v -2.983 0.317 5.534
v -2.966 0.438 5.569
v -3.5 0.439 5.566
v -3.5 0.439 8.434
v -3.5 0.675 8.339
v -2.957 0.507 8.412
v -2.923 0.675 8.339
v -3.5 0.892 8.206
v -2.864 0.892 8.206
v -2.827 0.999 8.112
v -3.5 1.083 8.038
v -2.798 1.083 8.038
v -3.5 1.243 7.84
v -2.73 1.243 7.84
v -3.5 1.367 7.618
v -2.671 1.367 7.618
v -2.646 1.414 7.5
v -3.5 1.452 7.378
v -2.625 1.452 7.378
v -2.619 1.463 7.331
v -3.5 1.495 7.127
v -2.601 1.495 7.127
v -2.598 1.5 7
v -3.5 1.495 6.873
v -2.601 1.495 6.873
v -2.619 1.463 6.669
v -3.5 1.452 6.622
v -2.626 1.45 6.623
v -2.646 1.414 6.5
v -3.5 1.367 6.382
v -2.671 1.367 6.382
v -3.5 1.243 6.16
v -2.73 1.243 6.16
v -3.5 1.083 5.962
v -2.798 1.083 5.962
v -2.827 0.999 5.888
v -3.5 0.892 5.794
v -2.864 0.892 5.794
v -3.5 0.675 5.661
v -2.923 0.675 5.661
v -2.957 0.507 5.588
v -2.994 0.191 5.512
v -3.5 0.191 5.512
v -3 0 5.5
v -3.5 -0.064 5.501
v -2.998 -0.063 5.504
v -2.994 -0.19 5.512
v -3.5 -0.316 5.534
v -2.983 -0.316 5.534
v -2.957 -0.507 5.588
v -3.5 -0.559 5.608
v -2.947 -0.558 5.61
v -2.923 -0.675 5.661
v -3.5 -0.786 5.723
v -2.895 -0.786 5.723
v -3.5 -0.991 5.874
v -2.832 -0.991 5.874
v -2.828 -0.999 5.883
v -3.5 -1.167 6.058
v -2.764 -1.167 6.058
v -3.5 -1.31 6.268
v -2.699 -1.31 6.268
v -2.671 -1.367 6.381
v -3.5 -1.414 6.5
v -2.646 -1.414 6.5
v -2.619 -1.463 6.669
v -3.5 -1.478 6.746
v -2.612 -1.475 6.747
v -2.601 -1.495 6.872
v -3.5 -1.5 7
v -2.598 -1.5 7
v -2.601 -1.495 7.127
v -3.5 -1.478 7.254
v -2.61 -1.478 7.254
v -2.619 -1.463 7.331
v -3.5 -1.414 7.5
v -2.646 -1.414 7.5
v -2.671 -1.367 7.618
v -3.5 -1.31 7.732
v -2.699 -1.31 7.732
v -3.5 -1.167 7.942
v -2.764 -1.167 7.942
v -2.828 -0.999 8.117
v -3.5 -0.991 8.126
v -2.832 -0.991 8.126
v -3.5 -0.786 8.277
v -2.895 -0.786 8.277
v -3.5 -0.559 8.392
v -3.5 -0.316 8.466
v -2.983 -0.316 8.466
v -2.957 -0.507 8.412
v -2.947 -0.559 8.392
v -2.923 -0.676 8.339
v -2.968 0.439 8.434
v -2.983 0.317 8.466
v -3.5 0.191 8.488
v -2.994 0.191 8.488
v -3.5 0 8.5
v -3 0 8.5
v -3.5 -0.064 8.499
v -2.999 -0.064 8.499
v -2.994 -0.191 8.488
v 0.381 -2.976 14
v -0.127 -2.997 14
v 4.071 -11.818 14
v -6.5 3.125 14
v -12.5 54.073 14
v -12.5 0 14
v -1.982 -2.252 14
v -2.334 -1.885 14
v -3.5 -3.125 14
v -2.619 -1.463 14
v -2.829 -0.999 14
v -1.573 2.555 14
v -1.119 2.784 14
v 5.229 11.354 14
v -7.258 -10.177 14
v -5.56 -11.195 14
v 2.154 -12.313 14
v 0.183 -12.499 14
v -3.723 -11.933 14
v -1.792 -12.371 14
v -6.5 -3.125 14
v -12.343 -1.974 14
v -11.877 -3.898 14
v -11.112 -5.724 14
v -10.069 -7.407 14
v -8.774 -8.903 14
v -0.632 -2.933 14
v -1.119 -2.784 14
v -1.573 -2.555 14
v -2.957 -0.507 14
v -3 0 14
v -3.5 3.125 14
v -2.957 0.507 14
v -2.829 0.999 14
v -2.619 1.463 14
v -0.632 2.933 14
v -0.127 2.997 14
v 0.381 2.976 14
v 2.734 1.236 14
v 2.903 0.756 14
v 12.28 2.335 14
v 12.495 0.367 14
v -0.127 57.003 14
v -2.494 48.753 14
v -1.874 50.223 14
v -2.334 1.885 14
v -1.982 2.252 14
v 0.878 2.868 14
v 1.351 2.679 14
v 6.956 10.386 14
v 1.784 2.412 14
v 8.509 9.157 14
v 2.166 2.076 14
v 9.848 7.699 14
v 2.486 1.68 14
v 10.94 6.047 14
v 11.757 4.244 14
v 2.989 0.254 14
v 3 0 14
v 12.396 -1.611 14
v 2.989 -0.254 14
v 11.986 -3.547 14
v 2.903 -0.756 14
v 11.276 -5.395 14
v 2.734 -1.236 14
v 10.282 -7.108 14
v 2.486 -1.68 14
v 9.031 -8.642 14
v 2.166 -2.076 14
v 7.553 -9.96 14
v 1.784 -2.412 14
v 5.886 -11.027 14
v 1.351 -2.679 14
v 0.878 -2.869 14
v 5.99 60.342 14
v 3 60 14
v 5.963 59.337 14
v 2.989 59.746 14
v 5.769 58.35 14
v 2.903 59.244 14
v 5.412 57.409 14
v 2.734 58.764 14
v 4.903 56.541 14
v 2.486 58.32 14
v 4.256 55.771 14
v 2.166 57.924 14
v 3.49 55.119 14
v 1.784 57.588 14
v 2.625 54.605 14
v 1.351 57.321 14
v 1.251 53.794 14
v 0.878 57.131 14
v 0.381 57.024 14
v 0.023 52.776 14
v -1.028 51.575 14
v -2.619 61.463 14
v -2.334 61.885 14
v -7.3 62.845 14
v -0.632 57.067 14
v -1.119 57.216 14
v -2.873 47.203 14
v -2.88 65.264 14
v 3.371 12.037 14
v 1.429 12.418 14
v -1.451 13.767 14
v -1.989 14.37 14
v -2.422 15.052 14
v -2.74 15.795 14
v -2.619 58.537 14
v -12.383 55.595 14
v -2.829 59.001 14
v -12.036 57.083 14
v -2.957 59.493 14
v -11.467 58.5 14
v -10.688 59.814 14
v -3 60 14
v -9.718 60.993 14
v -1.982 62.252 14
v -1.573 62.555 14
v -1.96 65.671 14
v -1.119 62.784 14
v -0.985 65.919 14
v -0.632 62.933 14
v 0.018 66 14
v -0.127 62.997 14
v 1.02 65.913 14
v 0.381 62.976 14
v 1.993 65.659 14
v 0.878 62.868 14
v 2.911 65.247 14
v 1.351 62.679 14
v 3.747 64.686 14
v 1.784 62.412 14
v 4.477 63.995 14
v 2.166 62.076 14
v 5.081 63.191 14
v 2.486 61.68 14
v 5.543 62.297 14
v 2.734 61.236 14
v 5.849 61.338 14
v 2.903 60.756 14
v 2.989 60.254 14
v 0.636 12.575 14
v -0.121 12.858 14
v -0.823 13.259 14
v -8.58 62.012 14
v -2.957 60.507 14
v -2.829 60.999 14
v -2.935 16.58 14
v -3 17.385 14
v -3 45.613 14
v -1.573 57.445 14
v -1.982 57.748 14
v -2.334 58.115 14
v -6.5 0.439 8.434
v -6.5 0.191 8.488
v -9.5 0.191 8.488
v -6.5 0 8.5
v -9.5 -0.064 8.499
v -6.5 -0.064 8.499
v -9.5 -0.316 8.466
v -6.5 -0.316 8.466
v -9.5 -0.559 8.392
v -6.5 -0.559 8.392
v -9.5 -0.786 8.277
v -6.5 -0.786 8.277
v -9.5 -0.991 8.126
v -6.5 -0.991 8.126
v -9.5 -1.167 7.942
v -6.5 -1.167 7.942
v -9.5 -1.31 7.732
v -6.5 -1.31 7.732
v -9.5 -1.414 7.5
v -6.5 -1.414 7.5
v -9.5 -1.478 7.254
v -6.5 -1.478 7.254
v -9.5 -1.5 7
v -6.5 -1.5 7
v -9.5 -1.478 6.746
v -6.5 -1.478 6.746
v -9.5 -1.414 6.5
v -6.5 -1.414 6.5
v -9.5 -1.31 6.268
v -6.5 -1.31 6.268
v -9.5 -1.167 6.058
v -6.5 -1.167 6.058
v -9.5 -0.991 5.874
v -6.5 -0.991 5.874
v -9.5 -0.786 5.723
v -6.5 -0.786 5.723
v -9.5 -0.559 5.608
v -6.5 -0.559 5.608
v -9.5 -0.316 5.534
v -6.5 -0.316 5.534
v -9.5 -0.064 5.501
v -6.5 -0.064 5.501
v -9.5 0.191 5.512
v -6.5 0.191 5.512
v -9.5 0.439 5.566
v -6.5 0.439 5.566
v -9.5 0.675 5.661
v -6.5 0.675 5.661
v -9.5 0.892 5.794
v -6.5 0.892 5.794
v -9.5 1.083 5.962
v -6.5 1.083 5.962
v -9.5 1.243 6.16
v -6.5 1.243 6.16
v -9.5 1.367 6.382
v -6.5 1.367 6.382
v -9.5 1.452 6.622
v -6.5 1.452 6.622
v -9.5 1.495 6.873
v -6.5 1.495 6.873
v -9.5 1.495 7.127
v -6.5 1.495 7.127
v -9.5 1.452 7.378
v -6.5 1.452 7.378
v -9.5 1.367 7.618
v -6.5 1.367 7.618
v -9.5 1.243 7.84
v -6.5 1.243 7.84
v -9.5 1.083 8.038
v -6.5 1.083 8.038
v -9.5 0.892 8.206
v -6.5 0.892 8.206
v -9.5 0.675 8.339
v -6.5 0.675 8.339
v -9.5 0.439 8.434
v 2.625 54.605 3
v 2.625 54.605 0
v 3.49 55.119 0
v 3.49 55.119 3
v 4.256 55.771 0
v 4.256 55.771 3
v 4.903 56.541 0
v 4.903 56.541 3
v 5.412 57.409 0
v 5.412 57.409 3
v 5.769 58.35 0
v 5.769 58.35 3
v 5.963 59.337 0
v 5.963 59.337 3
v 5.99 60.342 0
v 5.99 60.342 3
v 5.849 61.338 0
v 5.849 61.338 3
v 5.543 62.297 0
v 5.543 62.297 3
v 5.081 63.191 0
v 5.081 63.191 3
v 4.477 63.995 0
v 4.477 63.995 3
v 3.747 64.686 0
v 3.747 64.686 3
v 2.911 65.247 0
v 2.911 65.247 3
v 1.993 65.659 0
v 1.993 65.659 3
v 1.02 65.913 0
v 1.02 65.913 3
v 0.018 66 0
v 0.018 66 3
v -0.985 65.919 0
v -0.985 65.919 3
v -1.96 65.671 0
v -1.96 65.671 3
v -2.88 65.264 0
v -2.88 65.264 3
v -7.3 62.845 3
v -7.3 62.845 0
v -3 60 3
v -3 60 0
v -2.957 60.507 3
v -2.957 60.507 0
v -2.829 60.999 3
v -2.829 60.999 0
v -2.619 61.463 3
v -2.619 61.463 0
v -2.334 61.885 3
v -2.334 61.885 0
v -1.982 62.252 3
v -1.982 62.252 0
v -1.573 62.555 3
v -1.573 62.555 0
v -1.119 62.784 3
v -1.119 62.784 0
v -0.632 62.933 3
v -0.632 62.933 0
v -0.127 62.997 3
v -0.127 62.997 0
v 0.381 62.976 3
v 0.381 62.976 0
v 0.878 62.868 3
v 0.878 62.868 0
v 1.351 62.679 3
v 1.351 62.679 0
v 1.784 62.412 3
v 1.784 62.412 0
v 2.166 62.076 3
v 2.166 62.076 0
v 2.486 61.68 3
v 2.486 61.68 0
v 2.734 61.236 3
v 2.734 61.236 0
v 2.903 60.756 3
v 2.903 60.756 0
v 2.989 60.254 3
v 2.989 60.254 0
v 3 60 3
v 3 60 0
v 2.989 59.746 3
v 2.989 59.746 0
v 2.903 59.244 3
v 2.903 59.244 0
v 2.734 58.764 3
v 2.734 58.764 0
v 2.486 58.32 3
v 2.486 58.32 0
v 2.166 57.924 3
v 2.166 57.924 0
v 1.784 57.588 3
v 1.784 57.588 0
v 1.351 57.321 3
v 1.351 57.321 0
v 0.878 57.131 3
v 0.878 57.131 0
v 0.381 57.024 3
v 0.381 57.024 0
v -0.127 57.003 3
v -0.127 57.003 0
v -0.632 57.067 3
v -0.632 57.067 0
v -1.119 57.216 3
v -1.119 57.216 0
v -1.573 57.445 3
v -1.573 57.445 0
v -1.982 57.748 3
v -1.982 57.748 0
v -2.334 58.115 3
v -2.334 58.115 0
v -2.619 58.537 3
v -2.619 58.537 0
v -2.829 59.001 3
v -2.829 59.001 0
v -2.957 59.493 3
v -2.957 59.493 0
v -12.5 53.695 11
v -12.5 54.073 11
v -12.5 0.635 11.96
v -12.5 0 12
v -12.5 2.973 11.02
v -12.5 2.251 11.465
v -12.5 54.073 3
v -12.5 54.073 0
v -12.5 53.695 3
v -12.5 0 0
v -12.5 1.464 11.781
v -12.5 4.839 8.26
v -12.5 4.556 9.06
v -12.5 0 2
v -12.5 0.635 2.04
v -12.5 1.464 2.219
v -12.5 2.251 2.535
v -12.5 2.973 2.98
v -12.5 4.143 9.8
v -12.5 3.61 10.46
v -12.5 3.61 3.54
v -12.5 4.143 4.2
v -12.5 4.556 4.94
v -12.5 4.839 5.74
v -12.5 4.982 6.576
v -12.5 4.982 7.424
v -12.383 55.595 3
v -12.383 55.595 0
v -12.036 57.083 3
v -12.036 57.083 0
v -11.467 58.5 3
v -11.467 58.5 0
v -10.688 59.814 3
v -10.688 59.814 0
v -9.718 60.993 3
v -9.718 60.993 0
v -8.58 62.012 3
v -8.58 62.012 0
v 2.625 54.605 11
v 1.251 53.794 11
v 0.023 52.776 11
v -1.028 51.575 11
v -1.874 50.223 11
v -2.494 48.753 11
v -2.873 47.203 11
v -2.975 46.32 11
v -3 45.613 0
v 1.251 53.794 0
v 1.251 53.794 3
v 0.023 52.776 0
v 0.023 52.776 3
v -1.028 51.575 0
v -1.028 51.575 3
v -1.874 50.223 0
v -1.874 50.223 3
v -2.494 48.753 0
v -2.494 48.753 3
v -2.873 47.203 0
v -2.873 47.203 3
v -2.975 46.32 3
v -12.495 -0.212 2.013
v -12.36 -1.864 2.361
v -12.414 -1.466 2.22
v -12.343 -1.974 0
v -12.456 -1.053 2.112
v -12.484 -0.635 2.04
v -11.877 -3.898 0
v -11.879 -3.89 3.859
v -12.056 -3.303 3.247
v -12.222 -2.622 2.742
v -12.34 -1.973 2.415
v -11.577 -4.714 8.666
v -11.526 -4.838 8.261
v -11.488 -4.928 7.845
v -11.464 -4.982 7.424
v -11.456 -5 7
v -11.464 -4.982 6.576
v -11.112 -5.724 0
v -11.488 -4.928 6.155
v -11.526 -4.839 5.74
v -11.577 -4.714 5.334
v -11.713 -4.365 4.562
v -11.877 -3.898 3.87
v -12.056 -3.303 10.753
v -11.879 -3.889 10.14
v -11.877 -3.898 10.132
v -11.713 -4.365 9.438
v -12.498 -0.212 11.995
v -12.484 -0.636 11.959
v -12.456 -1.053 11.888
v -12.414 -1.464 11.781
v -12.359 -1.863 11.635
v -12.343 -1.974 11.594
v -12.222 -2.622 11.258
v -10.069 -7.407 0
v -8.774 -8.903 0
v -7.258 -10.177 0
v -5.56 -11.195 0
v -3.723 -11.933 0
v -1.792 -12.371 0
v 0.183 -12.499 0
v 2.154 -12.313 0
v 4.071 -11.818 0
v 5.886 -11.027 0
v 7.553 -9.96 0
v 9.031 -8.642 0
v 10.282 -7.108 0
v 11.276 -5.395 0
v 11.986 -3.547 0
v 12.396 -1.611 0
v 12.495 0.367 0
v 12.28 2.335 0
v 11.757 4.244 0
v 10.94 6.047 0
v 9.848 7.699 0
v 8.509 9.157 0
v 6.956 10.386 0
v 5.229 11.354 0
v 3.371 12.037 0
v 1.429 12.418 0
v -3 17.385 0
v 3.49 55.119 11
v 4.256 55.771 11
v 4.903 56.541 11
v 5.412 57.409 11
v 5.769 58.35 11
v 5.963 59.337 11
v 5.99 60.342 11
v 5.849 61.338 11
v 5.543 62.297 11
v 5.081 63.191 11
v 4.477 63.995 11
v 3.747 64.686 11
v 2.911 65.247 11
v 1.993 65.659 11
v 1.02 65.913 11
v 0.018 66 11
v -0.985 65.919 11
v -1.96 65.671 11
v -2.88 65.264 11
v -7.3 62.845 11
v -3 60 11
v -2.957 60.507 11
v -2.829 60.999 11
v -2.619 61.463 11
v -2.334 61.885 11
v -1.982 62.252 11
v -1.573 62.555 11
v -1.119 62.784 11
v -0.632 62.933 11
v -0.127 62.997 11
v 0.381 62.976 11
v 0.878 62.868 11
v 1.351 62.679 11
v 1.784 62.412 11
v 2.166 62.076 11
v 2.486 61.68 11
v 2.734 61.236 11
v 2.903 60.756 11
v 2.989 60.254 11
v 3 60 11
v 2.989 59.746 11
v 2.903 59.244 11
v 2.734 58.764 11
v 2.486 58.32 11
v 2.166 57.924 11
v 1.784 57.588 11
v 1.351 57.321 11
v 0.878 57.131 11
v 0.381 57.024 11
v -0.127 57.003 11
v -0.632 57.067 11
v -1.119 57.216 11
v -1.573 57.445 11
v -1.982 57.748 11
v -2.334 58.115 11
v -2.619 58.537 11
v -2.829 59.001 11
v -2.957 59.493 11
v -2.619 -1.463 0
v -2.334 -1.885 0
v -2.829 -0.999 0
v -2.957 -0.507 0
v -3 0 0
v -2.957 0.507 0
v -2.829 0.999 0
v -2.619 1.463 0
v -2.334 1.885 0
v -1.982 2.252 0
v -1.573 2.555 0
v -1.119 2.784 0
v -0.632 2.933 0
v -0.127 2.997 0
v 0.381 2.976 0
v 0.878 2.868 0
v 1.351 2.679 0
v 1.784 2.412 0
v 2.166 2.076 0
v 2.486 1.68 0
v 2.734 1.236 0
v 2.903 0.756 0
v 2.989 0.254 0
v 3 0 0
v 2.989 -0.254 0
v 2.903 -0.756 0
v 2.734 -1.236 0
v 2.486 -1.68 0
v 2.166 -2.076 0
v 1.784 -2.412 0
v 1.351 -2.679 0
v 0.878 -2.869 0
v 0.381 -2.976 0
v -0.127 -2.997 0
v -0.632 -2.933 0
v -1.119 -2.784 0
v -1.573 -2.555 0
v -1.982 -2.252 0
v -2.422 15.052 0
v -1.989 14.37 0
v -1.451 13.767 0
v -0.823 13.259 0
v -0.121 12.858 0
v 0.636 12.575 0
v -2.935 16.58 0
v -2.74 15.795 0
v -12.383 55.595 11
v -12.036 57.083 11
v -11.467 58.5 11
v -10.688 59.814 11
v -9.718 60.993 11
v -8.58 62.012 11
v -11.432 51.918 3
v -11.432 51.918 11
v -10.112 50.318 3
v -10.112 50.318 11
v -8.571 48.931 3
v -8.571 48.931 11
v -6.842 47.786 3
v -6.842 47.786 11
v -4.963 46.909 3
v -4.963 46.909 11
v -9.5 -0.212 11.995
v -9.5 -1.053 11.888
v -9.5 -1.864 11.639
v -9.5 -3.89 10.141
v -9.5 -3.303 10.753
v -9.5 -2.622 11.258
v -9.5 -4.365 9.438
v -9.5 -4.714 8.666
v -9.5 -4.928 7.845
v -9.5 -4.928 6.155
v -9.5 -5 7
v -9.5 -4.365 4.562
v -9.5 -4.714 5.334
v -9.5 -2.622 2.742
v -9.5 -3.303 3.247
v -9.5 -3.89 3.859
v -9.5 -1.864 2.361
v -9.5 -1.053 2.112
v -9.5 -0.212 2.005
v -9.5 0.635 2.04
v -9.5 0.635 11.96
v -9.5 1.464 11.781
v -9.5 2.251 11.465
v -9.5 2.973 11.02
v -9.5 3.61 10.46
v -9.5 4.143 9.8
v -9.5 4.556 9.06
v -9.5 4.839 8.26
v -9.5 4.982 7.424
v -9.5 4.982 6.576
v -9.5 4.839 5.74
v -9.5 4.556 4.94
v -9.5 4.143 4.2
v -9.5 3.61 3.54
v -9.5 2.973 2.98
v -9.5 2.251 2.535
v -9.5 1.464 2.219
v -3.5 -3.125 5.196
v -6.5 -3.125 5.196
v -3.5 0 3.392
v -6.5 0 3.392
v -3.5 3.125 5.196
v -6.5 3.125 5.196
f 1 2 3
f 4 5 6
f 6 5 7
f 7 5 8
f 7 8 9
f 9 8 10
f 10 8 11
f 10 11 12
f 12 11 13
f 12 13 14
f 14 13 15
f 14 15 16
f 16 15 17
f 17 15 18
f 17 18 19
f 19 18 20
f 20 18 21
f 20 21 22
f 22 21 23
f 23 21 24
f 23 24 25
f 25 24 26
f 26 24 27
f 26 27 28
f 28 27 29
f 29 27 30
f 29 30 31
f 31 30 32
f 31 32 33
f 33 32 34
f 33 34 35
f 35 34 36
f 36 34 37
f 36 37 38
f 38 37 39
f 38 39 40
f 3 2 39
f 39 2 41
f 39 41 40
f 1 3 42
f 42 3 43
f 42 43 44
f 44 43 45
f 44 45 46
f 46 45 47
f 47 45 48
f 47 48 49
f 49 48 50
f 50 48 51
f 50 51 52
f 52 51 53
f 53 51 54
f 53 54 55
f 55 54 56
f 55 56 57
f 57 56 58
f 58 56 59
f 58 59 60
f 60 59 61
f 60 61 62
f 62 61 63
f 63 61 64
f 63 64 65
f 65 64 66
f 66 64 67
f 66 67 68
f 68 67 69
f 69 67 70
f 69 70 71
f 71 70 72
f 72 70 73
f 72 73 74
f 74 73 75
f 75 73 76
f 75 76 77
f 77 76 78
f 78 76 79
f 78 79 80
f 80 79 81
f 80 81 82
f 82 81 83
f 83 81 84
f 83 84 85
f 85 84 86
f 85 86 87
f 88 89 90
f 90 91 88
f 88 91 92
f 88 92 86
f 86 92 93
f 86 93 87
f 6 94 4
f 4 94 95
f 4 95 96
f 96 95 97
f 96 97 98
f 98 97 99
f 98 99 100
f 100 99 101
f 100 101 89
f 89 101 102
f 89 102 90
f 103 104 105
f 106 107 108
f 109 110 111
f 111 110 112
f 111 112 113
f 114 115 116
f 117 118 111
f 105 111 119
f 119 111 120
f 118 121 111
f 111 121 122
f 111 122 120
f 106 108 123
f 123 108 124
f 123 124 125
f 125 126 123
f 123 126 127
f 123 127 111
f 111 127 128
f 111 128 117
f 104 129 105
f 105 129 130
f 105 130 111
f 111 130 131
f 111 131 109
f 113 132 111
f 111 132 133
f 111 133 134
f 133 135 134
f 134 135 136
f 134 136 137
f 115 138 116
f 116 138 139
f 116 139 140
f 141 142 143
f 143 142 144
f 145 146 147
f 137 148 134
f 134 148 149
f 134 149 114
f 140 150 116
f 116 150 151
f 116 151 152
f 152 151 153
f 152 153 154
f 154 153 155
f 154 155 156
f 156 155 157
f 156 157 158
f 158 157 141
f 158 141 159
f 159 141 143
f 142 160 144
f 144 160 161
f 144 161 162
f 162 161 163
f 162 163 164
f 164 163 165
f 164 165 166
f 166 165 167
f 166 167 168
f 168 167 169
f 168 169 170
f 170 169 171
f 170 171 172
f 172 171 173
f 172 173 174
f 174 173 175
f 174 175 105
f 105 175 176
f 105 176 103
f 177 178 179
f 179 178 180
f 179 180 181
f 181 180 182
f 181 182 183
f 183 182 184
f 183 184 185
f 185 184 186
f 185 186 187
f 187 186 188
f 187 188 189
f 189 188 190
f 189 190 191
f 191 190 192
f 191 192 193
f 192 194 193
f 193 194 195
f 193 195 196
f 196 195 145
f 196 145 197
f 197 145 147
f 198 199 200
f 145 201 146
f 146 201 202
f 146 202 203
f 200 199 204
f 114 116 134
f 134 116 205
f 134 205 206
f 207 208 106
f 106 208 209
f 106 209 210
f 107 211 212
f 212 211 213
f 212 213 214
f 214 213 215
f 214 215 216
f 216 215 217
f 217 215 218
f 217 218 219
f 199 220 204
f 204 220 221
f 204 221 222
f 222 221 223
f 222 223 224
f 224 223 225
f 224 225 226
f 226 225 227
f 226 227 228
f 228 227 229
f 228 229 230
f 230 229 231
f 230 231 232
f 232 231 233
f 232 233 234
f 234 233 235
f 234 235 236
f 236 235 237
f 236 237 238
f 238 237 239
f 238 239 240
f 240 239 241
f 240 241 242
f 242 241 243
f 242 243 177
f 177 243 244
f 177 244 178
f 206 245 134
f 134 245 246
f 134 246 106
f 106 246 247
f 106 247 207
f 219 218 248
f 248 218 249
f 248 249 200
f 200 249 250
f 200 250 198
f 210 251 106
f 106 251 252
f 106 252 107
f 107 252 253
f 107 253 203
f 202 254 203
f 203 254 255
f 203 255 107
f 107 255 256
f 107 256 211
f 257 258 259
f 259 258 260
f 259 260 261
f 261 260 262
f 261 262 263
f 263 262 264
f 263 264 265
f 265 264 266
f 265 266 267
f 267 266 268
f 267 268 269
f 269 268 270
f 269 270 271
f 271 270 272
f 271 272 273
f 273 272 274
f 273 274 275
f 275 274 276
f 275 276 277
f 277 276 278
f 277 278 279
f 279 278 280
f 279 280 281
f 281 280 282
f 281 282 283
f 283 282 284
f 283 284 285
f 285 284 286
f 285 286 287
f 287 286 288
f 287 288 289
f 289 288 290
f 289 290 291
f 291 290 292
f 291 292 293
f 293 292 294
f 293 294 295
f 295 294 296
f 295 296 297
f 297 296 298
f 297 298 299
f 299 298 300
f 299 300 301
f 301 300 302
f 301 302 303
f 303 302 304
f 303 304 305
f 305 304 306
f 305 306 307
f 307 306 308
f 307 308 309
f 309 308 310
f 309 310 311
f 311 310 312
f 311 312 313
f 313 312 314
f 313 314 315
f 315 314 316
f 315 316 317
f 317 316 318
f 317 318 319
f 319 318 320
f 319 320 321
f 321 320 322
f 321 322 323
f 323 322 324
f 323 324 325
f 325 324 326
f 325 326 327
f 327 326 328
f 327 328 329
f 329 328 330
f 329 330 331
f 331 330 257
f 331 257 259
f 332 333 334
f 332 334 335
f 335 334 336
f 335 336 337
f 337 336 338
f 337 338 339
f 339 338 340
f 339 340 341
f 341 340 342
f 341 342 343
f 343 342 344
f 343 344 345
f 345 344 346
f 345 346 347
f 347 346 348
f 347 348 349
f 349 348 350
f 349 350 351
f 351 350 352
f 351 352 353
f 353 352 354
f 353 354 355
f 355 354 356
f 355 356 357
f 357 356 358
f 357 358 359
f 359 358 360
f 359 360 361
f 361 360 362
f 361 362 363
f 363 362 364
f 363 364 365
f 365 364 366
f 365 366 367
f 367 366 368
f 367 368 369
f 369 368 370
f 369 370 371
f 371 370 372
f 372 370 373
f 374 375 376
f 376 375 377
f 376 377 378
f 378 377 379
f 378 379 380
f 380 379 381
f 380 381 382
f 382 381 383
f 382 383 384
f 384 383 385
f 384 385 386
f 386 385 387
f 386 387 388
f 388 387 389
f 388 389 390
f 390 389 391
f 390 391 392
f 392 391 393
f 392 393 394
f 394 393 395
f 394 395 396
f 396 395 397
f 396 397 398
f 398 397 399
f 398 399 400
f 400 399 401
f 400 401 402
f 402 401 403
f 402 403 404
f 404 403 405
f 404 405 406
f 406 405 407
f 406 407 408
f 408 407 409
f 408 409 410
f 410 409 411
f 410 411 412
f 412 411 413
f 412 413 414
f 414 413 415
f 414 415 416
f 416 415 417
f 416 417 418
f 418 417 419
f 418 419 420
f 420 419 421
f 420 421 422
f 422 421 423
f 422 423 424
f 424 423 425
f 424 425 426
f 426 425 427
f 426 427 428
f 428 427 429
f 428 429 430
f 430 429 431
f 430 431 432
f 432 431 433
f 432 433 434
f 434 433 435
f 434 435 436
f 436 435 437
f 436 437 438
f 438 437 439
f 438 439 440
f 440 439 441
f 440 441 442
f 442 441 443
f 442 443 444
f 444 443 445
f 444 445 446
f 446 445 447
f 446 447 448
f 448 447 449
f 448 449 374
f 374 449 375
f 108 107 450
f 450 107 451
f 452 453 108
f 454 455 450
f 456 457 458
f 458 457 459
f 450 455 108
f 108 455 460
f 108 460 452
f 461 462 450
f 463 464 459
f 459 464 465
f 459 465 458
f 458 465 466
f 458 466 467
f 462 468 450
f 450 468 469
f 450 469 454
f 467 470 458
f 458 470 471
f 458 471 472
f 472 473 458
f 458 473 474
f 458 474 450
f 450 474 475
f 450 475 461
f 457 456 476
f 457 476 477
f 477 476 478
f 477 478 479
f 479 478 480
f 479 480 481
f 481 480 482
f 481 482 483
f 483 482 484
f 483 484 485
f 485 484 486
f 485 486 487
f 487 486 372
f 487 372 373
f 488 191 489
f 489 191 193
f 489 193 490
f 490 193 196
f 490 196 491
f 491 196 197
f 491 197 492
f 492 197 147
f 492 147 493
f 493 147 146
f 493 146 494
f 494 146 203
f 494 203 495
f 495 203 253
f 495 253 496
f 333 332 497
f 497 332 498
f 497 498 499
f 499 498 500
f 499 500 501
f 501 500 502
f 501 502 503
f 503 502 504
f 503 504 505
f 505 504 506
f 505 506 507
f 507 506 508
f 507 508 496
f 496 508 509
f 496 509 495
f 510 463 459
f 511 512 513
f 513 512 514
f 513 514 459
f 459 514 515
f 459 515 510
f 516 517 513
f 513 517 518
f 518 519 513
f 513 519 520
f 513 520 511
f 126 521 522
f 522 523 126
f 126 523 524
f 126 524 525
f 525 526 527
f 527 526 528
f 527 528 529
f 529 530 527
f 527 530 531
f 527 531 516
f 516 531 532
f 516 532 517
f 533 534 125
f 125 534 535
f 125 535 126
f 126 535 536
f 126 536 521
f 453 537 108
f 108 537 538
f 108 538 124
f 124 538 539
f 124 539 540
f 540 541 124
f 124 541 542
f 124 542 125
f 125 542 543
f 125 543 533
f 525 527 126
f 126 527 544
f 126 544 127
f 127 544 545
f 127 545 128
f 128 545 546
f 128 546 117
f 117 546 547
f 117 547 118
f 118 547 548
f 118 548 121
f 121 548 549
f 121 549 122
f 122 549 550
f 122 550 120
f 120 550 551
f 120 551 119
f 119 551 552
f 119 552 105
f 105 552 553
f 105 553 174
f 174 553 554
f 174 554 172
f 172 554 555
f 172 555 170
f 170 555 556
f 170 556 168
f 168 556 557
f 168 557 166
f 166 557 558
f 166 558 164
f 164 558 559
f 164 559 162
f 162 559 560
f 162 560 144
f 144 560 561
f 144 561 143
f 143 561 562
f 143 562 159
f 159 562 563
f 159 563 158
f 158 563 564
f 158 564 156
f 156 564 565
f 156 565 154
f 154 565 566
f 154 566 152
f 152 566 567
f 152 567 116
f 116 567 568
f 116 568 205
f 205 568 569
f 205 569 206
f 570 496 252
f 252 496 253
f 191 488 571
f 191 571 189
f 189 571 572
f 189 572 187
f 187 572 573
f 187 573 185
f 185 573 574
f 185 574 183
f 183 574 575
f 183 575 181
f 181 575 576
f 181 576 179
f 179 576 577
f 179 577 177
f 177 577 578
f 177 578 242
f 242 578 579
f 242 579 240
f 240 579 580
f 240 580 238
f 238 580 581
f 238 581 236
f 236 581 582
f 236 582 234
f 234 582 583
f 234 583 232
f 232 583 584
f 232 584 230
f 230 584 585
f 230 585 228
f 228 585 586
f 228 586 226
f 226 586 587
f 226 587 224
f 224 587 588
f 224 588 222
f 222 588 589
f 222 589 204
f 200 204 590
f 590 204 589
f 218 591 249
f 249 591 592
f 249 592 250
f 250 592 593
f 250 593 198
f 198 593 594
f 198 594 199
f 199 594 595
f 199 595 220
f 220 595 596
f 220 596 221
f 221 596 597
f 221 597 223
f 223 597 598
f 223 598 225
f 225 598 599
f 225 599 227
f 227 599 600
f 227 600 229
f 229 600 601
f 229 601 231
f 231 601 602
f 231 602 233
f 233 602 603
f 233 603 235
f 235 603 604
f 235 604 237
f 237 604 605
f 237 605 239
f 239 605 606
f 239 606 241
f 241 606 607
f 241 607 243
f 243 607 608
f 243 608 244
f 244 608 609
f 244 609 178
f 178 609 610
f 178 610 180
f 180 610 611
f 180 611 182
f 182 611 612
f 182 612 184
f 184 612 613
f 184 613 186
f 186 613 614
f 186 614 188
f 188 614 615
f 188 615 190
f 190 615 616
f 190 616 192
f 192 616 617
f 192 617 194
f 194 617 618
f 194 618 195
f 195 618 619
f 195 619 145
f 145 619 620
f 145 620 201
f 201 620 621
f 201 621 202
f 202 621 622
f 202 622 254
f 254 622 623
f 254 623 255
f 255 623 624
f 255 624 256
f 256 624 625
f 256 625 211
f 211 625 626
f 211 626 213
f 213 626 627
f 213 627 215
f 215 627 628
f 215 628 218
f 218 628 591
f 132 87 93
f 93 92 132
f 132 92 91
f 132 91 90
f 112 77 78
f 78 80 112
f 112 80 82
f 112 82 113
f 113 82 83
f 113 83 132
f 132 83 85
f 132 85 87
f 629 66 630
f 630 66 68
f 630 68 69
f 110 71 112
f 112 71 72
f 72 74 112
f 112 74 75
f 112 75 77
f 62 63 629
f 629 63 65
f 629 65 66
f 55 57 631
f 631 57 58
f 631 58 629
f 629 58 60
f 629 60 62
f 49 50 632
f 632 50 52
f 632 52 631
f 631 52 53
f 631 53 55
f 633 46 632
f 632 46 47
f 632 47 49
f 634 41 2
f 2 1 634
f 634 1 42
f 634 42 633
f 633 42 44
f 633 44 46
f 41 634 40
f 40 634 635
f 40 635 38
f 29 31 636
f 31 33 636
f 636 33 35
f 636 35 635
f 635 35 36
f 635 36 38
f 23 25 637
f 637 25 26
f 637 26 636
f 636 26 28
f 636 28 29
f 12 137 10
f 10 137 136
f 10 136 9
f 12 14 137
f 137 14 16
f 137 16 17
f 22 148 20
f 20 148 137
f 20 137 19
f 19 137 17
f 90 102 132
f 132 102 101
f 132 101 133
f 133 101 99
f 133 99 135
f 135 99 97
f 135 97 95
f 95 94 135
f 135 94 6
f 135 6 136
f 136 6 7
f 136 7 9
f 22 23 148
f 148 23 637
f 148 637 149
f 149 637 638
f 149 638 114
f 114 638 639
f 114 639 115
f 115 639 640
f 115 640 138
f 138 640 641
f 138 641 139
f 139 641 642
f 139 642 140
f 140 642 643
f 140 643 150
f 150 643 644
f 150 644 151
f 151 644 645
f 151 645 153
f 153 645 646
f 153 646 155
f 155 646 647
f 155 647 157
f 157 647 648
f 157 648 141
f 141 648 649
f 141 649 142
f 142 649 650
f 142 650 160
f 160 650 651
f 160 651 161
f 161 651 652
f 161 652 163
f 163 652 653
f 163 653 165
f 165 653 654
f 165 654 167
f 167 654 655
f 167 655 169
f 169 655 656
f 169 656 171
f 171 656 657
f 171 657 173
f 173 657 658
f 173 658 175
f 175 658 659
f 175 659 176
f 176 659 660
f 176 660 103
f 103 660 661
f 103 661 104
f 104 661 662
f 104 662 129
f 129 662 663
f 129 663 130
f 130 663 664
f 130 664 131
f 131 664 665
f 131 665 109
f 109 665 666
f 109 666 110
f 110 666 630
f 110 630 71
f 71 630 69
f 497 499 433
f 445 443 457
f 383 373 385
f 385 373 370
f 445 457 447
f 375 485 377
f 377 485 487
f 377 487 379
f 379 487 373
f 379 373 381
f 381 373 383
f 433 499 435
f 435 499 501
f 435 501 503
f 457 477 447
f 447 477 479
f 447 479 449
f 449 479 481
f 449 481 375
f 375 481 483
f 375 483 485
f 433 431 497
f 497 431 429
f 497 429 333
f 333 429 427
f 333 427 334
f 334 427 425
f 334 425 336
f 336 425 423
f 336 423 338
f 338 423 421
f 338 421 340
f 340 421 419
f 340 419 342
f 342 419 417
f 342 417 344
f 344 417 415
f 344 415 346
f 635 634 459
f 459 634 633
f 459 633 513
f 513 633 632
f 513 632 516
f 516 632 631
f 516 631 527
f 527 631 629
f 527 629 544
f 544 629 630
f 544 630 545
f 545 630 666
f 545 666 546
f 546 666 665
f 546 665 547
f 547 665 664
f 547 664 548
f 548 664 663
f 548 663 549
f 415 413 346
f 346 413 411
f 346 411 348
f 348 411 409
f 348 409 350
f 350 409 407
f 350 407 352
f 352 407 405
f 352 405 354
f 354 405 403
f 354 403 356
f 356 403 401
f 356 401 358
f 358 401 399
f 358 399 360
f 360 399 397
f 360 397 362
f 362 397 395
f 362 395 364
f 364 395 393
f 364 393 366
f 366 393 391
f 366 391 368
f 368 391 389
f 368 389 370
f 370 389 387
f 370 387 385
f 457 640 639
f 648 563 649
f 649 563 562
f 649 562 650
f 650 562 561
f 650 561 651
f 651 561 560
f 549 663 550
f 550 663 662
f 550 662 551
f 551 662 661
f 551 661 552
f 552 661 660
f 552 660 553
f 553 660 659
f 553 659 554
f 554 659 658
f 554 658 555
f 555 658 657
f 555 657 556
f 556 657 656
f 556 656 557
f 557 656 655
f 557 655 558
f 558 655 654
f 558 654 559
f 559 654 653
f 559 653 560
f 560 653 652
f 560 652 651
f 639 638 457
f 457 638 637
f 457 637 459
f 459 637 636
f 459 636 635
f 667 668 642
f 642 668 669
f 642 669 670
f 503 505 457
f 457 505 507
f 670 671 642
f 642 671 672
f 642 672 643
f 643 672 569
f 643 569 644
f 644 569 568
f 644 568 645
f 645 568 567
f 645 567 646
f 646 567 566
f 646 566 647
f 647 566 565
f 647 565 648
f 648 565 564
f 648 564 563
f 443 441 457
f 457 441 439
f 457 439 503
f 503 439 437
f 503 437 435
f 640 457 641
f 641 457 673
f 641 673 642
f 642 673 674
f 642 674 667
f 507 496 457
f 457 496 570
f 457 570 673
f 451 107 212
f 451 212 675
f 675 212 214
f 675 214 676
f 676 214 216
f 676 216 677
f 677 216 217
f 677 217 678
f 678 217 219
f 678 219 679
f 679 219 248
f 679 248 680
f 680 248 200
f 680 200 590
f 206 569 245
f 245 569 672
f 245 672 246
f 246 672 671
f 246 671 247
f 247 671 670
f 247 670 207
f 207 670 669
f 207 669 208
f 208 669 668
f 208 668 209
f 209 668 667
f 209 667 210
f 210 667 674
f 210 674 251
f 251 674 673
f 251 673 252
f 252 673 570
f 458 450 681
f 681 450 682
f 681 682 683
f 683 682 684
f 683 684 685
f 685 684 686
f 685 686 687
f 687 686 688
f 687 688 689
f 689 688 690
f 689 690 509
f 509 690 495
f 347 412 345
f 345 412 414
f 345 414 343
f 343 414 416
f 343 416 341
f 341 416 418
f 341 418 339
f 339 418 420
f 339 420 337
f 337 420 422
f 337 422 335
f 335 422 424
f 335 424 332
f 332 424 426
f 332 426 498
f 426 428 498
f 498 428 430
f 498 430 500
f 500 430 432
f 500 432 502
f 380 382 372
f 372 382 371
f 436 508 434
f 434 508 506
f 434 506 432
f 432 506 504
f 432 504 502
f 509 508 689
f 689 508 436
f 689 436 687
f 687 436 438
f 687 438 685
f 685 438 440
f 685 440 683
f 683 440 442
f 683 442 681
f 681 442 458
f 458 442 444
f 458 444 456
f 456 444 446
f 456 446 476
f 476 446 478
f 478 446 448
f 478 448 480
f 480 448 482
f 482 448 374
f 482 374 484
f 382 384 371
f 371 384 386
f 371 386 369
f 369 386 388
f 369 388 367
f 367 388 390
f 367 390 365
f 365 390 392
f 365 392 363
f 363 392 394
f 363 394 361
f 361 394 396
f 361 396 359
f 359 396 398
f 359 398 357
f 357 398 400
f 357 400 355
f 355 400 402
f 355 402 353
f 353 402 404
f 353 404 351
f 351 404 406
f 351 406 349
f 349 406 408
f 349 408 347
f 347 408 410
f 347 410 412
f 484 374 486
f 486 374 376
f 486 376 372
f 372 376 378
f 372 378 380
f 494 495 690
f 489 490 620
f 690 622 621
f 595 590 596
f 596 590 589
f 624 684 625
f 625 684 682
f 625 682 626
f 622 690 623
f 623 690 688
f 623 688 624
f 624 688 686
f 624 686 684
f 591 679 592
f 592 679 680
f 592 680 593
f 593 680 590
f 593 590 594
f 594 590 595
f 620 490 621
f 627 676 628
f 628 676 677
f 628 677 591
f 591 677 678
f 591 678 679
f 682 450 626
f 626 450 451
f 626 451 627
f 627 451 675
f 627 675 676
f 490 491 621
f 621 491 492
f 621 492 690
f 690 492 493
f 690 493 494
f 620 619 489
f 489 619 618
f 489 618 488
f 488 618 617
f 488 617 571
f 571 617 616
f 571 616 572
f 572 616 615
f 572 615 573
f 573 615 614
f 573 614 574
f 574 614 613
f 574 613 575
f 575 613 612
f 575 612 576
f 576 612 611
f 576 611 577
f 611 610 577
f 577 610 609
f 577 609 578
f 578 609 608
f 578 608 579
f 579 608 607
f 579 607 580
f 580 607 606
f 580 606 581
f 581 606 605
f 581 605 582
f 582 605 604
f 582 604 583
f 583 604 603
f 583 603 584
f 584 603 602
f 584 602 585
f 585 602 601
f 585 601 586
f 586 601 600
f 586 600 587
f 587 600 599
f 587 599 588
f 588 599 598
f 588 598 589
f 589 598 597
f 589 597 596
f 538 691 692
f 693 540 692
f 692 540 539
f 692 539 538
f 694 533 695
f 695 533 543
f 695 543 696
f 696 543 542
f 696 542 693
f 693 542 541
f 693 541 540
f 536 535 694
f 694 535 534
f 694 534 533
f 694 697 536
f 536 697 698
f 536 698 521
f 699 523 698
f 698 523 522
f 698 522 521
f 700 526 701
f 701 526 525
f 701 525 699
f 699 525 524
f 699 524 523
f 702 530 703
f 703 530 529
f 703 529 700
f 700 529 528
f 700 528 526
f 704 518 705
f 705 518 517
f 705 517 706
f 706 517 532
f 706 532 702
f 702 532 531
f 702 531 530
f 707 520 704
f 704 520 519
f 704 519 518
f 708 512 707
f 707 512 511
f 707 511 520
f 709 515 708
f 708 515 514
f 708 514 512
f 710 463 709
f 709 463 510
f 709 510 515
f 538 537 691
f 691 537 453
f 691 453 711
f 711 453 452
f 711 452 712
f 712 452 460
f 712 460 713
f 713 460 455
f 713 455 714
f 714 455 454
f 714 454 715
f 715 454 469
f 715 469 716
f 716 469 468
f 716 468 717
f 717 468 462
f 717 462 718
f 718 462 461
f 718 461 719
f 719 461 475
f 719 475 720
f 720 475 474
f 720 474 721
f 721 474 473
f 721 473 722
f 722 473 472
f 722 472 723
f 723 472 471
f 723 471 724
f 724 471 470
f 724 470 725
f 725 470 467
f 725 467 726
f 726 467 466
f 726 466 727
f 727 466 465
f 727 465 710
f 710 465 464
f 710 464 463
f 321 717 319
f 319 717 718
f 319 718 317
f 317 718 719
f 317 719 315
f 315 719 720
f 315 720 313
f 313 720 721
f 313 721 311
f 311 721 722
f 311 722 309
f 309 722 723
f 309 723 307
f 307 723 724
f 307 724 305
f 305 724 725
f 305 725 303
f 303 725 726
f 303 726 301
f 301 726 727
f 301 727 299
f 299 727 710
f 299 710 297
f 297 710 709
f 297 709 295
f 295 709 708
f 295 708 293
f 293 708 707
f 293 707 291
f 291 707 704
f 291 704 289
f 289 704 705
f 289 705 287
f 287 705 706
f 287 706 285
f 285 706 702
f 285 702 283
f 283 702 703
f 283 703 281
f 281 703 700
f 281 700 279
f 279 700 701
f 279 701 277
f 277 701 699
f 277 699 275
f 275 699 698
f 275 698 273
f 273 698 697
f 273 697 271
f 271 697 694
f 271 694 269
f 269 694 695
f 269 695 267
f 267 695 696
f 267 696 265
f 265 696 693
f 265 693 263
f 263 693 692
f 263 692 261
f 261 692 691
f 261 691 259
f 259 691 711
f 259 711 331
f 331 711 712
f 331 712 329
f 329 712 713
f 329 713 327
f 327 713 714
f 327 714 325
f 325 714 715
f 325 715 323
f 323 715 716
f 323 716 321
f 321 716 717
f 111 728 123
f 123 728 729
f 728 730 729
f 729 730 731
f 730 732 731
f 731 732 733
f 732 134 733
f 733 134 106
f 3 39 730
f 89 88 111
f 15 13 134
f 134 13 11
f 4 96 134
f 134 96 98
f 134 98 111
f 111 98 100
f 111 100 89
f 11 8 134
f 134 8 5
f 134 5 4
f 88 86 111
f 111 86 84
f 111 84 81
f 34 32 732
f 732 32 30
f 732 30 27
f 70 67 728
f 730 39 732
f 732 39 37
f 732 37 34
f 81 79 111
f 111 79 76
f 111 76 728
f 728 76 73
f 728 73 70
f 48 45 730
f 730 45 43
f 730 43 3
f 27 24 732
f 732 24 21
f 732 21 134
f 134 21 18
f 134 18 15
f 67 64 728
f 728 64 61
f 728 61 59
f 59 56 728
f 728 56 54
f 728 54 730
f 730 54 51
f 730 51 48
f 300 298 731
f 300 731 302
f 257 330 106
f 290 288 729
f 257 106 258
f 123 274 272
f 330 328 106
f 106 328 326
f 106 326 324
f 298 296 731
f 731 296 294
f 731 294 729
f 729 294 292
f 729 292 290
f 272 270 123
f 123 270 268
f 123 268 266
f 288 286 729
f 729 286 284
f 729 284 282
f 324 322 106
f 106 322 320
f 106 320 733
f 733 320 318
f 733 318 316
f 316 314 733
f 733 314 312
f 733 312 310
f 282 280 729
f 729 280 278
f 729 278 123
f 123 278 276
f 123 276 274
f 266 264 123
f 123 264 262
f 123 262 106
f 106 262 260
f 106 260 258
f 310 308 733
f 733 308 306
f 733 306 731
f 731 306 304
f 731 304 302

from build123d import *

# Parameters (mm, degrees)
CROQUIS1_R              = 3
SALIENTE_EXTRUIR1_DEPTH = 14
REDONDEO1_R             = 10
REDONDEO2_R             = 10
REDONDEO3_R             = 5
CORTAR_EXTRUIR1_START   = -3
CROQUIS2_R              = 14
CORTAR_EXTRUIR1_DEPTH   = 8
CROQUIS3_R              = 1.5
CORTAR_EXTRUIR2_DEPTH   = 10
CROQUIS4_R              = 5
CORTAR_EXTRUIR3_DEPTH   = 3
CORTAR_EXTRUIR4_START   = -3
CROQUIS5_R              = 1.5
CORTAR_EXTRUIR4_DEPTH   = 3


with BuildPart() as part:
    # Croquis1 → Saliente-Extruir1 (new body)
    with BuildSketch(Plane.XY):
        with BuildLine():
            ThreePointArc((-12.5, 0), (9.842509843, -7.705517504), (-3, 12.1346611))
            Line((-3, 12.1346611), (-3, 54.803847577))
            ThreePointArc((-3, 54.803847577), (5.999605182, 59.93116932), (-2.88, 65.263610928))
            Line((-2.88, 65.263610928), (-12.5, 60))
            Line((-12.5, 60), (-12.5, 0))
        make_face()
        Circle(CROQUIS1_R, mode=Mode.SUBTRACT)
        with Locations((0, 60)):
            Circle(CROQUIS1_R, mode=Mode.SUBTRACT)
    extrude(amount=SALIENTE_EXTRUIR1_DEPTH)

    # Redondeo1
    redondeo1_edges = [part.edges().sort_by_distance(p)[0] for p in [
        (-12.5, 60, 7),
    ]]
    fillet(redondeo1_edges, radius=REDONDEO1_R)

    # Redondeo2
    redondeo2_edges = [part.edges().sort_by_distance(p)[0] for p in [
        (-3, 54.803847577, 7),
    ]]
    fillet(redondeo2_edges, radius=REDONDEO2_R)

    # Redondeo3
    redondeo3_edges = [part.edges().sort_by_distance(p)[0] for p in [
        (-3, 12.1346611, 7),
    ]]
    fillet(redondeo3_edges, radius=REDONDEO3_R)

    # Croquis2 → Cortar-Extruir1 (cut)
    with BuildSketch(Plane.XY.offset(14).offset(CORTAR_EXTRUIR1_START)):
        with Locations((0, 60)):
            Circle(CROQUIS2_R)
    extrude(amount=-CORTAR_EXTRUIR1_DEPTH, mode=Mode.SUBTRACT)

    # Croquis3 → Cortar-Extruir2 (cut)
    with BuildSketch(Plane.ZY.offset(12.5)):
        with Locations((7, 0)):
            Circle(CROQUIS3_R)
    extrude(amount=-CORTAR_EXTRUIR2_DEPTH, mode=Mode.SUBTRACT)

    # Croquis4 → Cortar-Extruir3 (cut)
    with BuildSketch(Plane.ZY.offset(12.5)):
        with Locations((7, 0)):
            Circle(CROQUIS4_R)
    extrude(amount=-CORTAR_EXTRUIR3_DEPTH, mode=Mode.SUBTRACT)

    # Croquis5 → Cortar-Extruir4 (cut)
    with BuildSketch(Plane.ZY.offset(9.5).offset(CORTAR_EXTRUIR4_START)):
        Polygon((8.804219591, 3.125), (8.804219591, -3.125), (5.195780409, -3.125), (3.391560818, 0), (5.195780409, 3.125), align=None)
        with Locations((7, 0)):
            Circle(CROQUIS5_R, mode=Mode.SUBTRACT)
        Polygon((10.608439182, 0), (8.804219591, 3.125), (8.804219591, -3.125), align=None)
        with BuildLine():
            Line((8.804219591, 3.125), (10.608439182, 0))
            Line((10.608439182, 0), (8.804219591, -3.125))
            Line((8.804219591, -3.125), (10.903123749, -3.125))
            ThreePointArc((10.903123749, -3.125), (11.717818285, -1.655956107), (12, 0))
            ThreePointArc((12, 0), (11.717818285, 1.655956107), (10.903123749, 3.125))
            Line((10.903123749, 3.125), (8.804219591, 3.125))
        make_face()
        with BuildLine():
            Line((14, 3.125), (10.903123749, 3.125))
            ThreePointArc((10.903123749, 3.125), (11.717818285, 1.655956107), (12, 0))
            ThreePointArc((12, 0), (11.717818285, -1.655956107), (10.903123749, -3.125))
            Line((10.903123749, -3.125), (14, -3.125))
            Line((14, -3.125), (14, 3.125))
        make_face()
    extrude(amount=-CORTAR_EXTRUIR4_DEPTH, mode=Mode.SUBTRACT)


solid = part.part
